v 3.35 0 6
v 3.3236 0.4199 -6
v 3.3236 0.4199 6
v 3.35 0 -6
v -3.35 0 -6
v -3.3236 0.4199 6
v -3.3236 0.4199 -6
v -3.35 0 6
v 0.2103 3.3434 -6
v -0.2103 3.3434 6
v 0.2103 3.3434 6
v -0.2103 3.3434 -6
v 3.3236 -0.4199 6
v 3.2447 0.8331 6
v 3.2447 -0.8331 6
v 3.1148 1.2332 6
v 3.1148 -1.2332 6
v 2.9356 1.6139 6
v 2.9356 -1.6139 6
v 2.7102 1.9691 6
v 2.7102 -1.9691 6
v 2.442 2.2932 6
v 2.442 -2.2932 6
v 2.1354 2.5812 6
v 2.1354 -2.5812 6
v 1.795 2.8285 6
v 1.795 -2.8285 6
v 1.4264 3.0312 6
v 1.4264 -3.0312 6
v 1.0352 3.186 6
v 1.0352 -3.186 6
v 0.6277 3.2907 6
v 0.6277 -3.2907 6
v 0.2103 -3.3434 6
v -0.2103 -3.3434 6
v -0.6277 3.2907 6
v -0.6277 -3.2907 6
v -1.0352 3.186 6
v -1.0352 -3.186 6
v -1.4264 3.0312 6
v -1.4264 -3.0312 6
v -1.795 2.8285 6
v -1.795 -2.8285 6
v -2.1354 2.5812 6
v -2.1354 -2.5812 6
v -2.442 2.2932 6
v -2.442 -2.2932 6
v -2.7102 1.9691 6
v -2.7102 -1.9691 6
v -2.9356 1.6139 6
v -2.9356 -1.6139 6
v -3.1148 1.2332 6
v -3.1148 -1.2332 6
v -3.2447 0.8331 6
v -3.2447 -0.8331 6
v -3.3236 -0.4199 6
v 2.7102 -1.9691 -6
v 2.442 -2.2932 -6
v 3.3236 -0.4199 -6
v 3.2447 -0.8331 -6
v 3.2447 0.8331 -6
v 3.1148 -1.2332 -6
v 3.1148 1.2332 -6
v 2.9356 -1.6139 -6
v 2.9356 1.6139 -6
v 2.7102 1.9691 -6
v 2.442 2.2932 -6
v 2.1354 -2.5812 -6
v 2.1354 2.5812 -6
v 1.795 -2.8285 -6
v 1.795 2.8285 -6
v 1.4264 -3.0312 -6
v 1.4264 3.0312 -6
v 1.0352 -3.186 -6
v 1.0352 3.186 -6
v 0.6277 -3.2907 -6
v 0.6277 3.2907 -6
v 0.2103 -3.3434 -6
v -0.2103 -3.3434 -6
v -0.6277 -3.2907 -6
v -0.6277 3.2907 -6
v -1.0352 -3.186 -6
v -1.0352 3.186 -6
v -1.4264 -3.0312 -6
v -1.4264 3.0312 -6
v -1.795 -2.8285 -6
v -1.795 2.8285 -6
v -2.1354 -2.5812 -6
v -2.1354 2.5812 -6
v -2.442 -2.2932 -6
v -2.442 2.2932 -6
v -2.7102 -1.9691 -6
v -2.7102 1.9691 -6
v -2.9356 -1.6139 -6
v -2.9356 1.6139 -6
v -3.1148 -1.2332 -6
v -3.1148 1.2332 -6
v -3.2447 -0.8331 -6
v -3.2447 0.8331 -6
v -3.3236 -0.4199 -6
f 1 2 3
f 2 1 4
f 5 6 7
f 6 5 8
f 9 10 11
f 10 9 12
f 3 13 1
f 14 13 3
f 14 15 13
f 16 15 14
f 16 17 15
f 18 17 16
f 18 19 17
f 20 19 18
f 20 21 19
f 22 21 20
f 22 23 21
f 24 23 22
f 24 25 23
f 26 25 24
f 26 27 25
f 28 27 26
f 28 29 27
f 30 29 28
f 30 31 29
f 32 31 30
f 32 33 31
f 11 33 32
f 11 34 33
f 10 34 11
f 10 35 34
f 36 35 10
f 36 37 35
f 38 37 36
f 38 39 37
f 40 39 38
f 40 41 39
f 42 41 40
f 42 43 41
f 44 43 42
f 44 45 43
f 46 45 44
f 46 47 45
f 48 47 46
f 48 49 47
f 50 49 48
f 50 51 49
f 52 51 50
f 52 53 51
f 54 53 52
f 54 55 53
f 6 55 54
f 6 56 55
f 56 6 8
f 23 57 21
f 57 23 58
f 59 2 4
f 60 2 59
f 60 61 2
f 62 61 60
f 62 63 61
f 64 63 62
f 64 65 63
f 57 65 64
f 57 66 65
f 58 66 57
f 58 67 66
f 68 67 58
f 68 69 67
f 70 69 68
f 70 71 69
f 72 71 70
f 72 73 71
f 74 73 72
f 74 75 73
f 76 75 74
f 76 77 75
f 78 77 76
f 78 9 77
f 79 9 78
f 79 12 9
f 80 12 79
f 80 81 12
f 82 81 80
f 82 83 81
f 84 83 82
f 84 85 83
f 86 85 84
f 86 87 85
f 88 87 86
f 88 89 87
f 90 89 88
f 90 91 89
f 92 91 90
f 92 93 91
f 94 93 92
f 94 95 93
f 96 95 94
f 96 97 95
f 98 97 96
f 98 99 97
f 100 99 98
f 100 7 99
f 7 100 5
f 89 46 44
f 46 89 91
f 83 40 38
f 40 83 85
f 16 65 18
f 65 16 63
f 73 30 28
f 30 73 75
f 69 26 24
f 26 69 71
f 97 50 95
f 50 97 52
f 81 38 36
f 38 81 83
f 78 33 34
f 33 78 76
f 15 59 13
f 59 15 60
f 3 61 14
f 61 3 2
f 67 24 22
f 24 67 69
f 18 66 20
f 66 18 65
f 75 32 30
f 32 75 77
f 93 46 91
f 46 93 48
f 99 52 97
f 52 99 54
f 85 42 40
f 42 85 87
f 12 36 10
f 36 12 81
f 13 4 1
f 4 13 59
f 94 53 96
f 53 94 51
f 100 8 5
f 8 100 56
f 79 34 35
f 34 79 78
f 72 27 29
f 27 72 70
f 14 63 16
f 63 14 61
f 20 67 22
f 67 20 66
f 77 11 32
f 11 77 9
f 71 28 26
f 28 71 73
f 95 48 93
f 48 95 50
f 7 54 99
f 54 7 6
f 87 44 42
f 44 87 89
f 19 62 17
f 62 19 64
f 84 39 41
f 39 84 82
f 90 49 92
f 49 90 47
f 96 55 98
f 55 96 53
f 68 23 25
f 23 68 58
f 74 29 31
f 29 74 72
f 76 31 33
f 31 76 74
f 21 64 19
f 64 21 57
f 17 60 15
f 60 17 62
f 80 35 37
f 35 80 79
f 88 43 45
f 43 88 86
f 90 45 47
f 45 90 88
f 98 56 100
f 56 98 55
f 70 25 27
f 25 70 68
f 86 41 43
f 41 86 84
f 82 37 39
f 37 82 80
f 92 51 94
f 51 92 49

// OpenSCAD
$fn = 50;


difference() {
	union() {
		translate(v = [0, 0, -6.0000000000]) {
			cylinder(h = 12, r = 3.3500000000);
		}
	}
	union() {
		translate(v = [0, 0, -100.0000000000]) {
			cylinder(h = 200, r = 0);
		}
	}
}
